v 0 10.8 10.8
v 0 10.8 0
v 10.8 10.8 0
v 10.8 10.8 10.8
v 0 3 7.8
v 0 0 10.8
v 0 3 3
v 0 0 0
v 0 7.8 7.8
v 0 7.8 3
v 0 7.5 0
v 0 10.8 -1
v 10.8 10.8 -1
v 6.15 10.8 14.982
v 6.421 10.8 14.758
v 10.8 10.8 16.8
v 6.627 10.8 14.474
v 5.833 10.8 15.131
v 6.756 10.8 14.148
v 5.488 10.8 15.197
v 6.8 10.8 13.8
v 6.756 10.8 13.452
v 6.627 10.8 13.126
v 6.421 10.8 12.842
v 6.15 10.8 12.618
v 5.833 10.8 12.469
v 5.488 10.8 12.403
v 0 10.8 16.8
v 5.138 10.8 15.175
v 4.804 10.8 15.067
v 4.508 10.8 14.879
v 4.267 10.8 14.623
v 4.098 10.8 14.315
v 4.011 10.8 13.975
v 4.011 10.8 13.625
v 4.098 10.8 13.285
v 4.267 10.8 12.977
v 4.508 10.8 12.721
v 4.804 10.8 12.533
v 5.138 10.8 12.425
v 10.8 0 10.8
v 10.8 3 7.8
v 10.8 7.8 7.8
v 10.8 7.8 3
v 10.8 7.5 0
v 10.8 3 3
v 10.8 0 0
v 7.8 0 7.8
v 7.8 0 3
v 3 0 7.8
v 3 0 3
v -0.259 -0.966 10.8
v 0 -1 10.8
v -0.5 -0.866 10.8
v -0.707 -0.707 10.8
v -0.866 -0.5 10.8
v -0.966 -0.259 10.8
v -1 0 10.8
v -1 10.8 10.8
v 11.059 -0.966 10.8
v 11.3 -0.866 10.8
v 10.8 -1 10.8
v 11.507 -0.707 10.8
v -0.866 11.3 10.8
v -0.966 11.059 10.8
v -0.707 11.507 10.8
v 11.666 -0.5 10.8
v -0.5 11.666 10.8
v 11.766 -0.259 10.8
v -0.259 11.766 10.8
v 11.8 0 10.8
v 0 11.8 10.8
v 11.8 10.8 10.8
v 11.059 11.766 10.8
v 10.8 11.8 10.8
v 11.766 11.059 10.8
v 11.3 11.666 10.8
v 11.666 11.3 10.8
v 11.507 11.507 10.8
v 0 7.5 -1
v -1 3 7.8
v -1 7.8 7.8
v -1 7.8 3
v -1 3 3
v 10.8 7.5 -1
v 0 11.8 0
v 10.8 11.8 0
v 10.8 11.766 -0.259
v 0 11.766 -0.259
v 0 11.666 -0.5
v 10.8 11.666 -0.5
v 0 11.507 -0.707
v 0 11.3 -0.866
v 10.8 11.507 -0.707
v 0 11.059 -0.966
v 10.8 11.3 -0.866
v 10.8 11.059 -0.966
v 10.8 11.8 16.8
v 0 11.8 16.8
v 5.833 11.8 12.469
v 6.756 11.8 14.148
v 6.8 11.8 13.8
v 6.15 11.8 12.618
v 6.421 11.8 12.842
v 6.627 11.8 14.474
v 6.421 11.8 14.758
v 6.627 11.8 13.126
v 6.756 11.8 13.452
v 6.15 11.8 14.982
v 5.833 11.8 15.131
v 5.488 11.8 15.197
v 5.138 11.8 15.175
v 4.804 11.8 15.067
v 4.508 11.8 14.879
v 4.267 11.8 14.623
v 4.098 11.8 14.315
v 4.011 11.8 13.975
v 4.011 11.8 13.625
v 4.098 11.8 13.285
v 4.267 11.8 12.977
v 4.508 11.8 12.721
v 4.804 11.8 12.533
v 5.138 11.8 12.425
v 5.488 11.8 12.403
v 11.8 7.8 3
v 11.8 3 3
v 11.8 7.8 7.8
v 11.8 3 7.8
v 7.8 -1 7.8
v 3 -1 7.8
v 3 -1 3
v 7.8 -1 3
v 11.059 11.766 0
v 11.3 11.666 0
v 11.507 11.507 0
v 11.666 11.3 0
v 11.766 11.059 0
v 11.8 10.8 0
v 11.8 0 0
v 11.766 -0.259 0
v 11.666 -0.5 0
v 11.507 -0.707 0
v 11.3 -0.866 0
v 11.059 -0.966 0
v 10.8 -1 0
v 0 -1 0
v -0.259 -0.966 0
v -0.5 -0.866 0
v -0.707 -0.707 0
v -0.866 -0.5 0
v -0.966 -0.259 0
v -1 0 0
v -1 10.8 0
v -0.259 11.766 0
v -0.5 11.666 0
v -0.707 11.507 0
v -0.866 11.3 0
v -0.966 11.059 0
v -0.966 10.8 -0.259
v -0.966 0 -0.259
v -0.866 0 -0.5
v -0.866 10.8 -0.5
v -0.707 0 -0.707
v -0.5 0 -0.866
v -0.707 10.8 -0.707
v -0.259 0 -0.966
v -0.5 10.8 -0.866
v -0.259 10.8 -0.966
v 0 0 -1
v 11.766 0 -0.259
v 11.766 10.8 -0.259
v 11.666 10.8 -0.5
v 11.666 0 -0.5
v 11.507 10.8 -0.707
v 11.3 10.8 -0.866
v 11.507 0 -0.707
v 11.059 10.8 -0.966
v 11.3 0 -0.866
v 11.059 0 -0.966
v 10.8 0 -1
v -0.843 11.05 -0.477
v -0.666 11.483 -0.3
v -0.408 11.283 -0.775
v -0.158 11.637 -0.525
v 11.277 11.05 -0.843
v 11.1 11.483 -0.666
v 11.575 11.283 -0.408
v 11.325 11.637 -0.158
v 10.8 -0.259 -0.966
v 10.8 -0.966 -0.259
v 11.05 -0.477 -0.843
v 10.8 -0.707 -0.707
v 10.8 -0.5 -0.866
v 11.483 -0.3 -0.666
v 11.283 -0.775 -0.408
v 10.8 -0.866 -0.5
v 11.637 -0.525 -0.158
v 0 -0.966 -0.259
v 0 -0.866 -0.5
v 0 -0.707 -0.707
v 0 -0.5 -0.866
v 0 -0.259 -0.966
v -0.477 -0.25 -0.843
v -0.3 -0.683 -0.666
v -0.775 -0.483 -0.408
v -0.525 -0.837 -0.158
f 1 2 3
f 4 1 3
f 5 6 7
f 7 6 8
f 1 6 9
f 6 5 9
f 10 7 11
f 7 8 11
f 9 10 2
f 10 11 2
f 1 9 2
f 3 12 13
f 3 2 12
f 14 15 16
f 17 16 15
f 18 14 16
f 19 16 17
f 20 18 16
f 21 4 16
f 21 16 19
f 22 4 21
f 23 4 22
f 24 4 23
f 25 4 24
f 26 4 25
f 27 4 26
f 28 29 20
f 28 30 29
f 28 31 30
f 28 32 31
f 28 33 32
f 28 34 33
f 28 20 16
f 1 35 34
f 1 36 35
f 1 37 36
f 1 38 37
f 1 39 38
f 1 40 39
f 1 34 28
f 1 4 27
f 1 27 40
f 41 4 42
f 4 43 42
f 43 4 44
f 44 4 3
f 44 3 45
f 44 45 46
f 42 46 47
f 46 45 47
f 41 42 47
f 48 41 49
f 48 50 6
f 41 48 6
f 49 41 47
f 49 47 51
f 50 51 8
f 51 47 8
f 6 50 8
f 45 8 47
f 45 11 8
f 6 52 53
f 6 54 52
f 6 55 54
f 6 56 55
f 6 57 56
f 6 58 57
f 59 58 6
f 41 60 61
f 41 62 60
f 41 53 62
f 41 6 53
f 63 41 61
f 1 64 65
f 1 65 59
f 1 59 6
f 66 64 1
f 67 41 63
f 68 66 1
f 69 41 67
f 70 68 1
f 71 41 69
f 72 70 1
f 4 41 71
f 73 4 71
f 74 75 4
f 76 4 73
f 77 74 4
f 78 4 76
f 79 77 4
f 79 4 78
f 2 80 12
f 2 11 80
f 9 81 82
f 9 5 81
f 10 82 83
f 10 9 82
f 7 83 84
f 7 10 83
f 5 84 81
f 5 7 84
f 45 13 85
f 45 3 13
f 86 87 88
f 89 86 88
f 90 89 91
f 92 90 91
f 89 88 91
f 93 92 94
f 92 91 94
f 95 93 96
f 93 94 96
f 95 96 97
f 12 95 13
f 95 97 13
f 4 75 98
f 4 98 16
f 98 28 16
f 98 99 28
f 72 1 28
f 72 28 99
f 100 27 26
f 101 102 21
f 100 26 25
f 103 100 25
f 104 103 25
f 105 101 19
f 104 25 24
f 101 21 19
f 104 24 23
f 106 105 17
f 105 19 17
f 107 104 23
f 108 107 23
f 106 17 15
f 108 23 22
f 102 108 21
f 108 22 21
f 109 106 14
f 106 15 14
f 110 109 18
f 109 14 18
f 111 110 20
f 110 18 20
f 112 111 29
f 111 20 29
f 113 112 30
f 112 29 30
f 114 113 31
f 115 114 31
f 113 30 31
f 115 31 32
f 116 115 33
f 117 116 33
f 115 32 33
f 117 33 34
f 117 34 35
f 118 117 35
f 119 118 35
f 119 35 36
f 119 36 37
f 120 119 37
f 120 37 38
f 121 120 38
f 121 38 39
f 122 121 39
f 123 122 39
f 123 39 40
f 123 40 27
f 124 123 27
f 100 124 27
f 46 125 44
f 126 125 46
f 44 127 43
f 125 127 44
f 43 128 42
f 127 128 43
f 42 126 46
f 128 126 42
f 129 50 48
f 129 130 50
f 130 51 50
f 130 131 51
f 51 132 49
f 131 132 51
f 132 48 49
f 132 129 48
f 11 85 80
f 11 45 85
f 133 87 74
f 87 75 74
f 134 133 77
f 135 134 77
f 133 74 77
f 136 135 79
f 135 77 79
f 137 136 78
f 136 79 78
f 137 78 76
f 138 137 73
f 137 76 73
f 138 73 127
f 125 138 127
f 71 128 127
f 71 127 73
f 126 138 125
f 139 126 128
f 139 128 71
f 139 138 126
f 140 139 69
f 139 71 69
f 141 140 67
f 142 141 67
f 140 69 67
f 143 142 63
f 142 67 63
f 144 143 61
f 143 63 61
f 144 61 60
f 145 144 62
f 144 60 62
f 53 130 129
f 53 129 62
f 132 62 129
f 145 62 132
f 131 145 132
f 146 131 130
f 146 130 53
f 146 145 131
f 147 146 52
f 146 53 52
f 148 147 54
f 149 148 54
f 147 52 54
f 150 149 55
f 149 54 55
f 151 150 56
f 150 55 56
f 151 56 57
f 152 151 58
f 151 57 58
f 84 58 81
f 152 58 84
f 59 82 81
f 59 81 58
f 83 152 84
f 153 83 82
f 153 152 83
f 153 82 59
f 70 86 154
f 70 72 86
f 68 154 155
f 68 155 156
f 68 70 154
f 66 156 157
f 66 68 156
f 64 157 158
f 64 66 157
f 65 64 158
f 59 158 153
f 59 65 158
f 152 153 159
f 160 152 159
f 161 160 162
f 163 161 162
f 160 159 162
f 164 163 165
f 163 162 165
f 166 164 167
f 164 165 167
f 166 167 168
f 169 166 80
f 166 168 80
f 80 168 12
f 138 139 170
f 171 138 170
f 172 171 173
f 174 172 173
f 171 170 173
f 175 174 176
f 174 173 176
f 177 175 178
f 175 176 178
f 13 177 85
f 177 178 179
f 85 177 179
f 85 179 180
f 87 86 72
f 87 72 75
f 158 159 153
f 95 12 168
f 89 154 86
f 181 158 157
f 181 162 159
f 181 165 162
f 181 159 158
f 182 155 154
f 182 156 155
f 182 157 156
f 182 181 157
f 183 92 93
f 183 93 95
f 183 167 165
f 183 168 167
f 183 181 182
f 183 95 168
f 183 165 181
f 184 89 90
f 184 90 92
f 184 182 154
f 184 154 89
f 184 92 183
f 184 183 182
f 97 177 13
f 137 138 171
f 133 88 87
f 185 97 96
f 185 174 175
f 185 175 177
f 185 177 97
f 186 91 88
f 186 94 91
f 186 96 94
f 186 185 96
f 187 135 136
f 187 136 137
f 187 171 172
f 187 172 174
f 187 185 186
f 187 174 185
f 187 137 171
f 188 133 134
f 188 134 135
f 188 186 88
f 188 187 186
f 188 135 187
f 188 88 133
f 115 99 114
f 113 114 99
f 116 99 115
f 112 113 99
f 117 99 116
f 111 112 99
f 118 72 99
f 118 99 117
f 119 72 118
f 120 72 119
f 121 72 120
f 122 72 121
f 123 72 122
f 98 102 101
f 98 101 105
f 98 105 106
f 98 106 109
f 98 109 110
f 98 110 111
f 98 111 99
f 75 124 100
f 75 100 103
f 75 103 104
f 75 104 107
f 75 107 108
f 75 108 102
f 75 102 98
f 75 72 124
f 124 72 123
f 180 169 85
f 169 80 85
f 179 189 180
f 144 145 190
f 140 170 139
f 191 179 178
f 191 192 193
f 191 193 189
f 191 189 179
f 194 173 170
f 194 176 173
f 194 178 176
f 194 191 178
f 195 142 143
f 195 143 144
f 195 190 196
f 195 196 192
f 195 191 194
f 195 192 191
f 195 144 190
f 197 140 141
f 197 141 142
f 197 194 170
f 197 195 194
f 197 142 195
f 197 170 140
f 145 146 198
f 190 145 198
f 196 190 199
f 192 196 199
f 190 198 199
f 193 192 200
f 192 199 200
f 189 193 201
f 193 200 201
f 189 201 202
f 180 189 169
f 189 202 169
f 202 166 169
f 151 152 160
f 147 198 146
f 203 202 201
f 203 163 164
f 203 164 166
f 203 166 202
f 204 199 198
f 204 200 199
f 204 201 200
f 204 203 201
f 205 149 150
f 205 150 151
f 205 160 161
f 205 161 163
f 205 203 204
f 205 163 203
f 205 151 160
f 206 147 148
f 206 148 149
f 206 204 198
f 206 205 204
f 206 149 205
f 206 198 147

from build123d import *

# Parameters (mm, degrees)
SKETCH_W        = 10.8
SKETCH_H        = 10.8
PAD_DEPTH       = 10.8
THICKNESS_T     = 1
SKETCH001_W     = 10.8
SKETCH001_H     = 1
PAD001_DEPTH    = 6
SKETCH002_R     = 1.4
POCKET_DEPTH    = 1.001
SKETCH003_W     = 10.8
SKETCH003_H     = 3.3
POCKET001_DEPTH = 1.001
SKETCH004_W     = 4.8
SKETCH004_H     = 4.8
POCKET002_DEPTH = 1
SKETCH005_W     = 4.8
SKETCH005_H     = 4.8
POCKET003_DEPTH = 12.801


with BuildPart() as part:
    # Sketch → Pad (new body)
    with BuildSketch(Plane.XY):
        with Locations((5.4, 5.4)):
            Rectangle(SKETCH_W, SKETCH_H)
    extrude(amount=PAD_DEPTH)

    # Thickness
    thickness_openings = [part.faces().sort_by_distance(p)[0] for p in [
        (5.4, 5.4, 10.8),
    ]]
    offset(amount=THICKNESS_T, openings=thickness_openings)

    # Sketch001 → Pad001 (new body)
    with BuildSketch(Plane.XY.offset(10.8)):
        with Locations((5.4, 11.3)):
            Rectangle(SKETCH001_W, SKETCH001_H)
    extrude(amount=PAD001_DEPTH)

    # Sketch002 → Pocket (cut, through all)
    with BuildSketch(Plane.XZ.offset(-10.8)):
        with Locations((5.4, 13.8)):
            Circle(SKETCH002_R)
    extrude(amount=-POCKET_DEPTH, mode=Mode.SUBTRACT)

    # Sketch003 → Pocket001 (cut, through all)
    with BuildSketch(Plane.XY):
        with Locations((5.4, 9.15)):
            Rectangle(SKETCH003_W, SKETCH003_H)
    extrude(amount=-POCKET001_DEPTH, mode=Mode.SUBTRACT)

    # Sketch004 → Pocket002 (cut)
    with BuildSketch(Plane.XZ.offset(1)):
        with Locations((5.4, 5.4)):
            Rectangle(SKETCH004_W, SKETCH004_H)
    extrude(amount=-POCKET002_DEPTH, mode=Mode.SUBTRACT)

    # Sketch005 → Pocket003 (cut, through all)
    with BuildSketch(Plane.YZ.offset(11.8)):
        with Locations((5.4, 5.4)):
            Rectangle(SKETCH005_W, SKETCH005_H)
    extrude(amount=-POCKET003_DEPTH, mode=Mode.SUBTRACT)


solid = part.part
